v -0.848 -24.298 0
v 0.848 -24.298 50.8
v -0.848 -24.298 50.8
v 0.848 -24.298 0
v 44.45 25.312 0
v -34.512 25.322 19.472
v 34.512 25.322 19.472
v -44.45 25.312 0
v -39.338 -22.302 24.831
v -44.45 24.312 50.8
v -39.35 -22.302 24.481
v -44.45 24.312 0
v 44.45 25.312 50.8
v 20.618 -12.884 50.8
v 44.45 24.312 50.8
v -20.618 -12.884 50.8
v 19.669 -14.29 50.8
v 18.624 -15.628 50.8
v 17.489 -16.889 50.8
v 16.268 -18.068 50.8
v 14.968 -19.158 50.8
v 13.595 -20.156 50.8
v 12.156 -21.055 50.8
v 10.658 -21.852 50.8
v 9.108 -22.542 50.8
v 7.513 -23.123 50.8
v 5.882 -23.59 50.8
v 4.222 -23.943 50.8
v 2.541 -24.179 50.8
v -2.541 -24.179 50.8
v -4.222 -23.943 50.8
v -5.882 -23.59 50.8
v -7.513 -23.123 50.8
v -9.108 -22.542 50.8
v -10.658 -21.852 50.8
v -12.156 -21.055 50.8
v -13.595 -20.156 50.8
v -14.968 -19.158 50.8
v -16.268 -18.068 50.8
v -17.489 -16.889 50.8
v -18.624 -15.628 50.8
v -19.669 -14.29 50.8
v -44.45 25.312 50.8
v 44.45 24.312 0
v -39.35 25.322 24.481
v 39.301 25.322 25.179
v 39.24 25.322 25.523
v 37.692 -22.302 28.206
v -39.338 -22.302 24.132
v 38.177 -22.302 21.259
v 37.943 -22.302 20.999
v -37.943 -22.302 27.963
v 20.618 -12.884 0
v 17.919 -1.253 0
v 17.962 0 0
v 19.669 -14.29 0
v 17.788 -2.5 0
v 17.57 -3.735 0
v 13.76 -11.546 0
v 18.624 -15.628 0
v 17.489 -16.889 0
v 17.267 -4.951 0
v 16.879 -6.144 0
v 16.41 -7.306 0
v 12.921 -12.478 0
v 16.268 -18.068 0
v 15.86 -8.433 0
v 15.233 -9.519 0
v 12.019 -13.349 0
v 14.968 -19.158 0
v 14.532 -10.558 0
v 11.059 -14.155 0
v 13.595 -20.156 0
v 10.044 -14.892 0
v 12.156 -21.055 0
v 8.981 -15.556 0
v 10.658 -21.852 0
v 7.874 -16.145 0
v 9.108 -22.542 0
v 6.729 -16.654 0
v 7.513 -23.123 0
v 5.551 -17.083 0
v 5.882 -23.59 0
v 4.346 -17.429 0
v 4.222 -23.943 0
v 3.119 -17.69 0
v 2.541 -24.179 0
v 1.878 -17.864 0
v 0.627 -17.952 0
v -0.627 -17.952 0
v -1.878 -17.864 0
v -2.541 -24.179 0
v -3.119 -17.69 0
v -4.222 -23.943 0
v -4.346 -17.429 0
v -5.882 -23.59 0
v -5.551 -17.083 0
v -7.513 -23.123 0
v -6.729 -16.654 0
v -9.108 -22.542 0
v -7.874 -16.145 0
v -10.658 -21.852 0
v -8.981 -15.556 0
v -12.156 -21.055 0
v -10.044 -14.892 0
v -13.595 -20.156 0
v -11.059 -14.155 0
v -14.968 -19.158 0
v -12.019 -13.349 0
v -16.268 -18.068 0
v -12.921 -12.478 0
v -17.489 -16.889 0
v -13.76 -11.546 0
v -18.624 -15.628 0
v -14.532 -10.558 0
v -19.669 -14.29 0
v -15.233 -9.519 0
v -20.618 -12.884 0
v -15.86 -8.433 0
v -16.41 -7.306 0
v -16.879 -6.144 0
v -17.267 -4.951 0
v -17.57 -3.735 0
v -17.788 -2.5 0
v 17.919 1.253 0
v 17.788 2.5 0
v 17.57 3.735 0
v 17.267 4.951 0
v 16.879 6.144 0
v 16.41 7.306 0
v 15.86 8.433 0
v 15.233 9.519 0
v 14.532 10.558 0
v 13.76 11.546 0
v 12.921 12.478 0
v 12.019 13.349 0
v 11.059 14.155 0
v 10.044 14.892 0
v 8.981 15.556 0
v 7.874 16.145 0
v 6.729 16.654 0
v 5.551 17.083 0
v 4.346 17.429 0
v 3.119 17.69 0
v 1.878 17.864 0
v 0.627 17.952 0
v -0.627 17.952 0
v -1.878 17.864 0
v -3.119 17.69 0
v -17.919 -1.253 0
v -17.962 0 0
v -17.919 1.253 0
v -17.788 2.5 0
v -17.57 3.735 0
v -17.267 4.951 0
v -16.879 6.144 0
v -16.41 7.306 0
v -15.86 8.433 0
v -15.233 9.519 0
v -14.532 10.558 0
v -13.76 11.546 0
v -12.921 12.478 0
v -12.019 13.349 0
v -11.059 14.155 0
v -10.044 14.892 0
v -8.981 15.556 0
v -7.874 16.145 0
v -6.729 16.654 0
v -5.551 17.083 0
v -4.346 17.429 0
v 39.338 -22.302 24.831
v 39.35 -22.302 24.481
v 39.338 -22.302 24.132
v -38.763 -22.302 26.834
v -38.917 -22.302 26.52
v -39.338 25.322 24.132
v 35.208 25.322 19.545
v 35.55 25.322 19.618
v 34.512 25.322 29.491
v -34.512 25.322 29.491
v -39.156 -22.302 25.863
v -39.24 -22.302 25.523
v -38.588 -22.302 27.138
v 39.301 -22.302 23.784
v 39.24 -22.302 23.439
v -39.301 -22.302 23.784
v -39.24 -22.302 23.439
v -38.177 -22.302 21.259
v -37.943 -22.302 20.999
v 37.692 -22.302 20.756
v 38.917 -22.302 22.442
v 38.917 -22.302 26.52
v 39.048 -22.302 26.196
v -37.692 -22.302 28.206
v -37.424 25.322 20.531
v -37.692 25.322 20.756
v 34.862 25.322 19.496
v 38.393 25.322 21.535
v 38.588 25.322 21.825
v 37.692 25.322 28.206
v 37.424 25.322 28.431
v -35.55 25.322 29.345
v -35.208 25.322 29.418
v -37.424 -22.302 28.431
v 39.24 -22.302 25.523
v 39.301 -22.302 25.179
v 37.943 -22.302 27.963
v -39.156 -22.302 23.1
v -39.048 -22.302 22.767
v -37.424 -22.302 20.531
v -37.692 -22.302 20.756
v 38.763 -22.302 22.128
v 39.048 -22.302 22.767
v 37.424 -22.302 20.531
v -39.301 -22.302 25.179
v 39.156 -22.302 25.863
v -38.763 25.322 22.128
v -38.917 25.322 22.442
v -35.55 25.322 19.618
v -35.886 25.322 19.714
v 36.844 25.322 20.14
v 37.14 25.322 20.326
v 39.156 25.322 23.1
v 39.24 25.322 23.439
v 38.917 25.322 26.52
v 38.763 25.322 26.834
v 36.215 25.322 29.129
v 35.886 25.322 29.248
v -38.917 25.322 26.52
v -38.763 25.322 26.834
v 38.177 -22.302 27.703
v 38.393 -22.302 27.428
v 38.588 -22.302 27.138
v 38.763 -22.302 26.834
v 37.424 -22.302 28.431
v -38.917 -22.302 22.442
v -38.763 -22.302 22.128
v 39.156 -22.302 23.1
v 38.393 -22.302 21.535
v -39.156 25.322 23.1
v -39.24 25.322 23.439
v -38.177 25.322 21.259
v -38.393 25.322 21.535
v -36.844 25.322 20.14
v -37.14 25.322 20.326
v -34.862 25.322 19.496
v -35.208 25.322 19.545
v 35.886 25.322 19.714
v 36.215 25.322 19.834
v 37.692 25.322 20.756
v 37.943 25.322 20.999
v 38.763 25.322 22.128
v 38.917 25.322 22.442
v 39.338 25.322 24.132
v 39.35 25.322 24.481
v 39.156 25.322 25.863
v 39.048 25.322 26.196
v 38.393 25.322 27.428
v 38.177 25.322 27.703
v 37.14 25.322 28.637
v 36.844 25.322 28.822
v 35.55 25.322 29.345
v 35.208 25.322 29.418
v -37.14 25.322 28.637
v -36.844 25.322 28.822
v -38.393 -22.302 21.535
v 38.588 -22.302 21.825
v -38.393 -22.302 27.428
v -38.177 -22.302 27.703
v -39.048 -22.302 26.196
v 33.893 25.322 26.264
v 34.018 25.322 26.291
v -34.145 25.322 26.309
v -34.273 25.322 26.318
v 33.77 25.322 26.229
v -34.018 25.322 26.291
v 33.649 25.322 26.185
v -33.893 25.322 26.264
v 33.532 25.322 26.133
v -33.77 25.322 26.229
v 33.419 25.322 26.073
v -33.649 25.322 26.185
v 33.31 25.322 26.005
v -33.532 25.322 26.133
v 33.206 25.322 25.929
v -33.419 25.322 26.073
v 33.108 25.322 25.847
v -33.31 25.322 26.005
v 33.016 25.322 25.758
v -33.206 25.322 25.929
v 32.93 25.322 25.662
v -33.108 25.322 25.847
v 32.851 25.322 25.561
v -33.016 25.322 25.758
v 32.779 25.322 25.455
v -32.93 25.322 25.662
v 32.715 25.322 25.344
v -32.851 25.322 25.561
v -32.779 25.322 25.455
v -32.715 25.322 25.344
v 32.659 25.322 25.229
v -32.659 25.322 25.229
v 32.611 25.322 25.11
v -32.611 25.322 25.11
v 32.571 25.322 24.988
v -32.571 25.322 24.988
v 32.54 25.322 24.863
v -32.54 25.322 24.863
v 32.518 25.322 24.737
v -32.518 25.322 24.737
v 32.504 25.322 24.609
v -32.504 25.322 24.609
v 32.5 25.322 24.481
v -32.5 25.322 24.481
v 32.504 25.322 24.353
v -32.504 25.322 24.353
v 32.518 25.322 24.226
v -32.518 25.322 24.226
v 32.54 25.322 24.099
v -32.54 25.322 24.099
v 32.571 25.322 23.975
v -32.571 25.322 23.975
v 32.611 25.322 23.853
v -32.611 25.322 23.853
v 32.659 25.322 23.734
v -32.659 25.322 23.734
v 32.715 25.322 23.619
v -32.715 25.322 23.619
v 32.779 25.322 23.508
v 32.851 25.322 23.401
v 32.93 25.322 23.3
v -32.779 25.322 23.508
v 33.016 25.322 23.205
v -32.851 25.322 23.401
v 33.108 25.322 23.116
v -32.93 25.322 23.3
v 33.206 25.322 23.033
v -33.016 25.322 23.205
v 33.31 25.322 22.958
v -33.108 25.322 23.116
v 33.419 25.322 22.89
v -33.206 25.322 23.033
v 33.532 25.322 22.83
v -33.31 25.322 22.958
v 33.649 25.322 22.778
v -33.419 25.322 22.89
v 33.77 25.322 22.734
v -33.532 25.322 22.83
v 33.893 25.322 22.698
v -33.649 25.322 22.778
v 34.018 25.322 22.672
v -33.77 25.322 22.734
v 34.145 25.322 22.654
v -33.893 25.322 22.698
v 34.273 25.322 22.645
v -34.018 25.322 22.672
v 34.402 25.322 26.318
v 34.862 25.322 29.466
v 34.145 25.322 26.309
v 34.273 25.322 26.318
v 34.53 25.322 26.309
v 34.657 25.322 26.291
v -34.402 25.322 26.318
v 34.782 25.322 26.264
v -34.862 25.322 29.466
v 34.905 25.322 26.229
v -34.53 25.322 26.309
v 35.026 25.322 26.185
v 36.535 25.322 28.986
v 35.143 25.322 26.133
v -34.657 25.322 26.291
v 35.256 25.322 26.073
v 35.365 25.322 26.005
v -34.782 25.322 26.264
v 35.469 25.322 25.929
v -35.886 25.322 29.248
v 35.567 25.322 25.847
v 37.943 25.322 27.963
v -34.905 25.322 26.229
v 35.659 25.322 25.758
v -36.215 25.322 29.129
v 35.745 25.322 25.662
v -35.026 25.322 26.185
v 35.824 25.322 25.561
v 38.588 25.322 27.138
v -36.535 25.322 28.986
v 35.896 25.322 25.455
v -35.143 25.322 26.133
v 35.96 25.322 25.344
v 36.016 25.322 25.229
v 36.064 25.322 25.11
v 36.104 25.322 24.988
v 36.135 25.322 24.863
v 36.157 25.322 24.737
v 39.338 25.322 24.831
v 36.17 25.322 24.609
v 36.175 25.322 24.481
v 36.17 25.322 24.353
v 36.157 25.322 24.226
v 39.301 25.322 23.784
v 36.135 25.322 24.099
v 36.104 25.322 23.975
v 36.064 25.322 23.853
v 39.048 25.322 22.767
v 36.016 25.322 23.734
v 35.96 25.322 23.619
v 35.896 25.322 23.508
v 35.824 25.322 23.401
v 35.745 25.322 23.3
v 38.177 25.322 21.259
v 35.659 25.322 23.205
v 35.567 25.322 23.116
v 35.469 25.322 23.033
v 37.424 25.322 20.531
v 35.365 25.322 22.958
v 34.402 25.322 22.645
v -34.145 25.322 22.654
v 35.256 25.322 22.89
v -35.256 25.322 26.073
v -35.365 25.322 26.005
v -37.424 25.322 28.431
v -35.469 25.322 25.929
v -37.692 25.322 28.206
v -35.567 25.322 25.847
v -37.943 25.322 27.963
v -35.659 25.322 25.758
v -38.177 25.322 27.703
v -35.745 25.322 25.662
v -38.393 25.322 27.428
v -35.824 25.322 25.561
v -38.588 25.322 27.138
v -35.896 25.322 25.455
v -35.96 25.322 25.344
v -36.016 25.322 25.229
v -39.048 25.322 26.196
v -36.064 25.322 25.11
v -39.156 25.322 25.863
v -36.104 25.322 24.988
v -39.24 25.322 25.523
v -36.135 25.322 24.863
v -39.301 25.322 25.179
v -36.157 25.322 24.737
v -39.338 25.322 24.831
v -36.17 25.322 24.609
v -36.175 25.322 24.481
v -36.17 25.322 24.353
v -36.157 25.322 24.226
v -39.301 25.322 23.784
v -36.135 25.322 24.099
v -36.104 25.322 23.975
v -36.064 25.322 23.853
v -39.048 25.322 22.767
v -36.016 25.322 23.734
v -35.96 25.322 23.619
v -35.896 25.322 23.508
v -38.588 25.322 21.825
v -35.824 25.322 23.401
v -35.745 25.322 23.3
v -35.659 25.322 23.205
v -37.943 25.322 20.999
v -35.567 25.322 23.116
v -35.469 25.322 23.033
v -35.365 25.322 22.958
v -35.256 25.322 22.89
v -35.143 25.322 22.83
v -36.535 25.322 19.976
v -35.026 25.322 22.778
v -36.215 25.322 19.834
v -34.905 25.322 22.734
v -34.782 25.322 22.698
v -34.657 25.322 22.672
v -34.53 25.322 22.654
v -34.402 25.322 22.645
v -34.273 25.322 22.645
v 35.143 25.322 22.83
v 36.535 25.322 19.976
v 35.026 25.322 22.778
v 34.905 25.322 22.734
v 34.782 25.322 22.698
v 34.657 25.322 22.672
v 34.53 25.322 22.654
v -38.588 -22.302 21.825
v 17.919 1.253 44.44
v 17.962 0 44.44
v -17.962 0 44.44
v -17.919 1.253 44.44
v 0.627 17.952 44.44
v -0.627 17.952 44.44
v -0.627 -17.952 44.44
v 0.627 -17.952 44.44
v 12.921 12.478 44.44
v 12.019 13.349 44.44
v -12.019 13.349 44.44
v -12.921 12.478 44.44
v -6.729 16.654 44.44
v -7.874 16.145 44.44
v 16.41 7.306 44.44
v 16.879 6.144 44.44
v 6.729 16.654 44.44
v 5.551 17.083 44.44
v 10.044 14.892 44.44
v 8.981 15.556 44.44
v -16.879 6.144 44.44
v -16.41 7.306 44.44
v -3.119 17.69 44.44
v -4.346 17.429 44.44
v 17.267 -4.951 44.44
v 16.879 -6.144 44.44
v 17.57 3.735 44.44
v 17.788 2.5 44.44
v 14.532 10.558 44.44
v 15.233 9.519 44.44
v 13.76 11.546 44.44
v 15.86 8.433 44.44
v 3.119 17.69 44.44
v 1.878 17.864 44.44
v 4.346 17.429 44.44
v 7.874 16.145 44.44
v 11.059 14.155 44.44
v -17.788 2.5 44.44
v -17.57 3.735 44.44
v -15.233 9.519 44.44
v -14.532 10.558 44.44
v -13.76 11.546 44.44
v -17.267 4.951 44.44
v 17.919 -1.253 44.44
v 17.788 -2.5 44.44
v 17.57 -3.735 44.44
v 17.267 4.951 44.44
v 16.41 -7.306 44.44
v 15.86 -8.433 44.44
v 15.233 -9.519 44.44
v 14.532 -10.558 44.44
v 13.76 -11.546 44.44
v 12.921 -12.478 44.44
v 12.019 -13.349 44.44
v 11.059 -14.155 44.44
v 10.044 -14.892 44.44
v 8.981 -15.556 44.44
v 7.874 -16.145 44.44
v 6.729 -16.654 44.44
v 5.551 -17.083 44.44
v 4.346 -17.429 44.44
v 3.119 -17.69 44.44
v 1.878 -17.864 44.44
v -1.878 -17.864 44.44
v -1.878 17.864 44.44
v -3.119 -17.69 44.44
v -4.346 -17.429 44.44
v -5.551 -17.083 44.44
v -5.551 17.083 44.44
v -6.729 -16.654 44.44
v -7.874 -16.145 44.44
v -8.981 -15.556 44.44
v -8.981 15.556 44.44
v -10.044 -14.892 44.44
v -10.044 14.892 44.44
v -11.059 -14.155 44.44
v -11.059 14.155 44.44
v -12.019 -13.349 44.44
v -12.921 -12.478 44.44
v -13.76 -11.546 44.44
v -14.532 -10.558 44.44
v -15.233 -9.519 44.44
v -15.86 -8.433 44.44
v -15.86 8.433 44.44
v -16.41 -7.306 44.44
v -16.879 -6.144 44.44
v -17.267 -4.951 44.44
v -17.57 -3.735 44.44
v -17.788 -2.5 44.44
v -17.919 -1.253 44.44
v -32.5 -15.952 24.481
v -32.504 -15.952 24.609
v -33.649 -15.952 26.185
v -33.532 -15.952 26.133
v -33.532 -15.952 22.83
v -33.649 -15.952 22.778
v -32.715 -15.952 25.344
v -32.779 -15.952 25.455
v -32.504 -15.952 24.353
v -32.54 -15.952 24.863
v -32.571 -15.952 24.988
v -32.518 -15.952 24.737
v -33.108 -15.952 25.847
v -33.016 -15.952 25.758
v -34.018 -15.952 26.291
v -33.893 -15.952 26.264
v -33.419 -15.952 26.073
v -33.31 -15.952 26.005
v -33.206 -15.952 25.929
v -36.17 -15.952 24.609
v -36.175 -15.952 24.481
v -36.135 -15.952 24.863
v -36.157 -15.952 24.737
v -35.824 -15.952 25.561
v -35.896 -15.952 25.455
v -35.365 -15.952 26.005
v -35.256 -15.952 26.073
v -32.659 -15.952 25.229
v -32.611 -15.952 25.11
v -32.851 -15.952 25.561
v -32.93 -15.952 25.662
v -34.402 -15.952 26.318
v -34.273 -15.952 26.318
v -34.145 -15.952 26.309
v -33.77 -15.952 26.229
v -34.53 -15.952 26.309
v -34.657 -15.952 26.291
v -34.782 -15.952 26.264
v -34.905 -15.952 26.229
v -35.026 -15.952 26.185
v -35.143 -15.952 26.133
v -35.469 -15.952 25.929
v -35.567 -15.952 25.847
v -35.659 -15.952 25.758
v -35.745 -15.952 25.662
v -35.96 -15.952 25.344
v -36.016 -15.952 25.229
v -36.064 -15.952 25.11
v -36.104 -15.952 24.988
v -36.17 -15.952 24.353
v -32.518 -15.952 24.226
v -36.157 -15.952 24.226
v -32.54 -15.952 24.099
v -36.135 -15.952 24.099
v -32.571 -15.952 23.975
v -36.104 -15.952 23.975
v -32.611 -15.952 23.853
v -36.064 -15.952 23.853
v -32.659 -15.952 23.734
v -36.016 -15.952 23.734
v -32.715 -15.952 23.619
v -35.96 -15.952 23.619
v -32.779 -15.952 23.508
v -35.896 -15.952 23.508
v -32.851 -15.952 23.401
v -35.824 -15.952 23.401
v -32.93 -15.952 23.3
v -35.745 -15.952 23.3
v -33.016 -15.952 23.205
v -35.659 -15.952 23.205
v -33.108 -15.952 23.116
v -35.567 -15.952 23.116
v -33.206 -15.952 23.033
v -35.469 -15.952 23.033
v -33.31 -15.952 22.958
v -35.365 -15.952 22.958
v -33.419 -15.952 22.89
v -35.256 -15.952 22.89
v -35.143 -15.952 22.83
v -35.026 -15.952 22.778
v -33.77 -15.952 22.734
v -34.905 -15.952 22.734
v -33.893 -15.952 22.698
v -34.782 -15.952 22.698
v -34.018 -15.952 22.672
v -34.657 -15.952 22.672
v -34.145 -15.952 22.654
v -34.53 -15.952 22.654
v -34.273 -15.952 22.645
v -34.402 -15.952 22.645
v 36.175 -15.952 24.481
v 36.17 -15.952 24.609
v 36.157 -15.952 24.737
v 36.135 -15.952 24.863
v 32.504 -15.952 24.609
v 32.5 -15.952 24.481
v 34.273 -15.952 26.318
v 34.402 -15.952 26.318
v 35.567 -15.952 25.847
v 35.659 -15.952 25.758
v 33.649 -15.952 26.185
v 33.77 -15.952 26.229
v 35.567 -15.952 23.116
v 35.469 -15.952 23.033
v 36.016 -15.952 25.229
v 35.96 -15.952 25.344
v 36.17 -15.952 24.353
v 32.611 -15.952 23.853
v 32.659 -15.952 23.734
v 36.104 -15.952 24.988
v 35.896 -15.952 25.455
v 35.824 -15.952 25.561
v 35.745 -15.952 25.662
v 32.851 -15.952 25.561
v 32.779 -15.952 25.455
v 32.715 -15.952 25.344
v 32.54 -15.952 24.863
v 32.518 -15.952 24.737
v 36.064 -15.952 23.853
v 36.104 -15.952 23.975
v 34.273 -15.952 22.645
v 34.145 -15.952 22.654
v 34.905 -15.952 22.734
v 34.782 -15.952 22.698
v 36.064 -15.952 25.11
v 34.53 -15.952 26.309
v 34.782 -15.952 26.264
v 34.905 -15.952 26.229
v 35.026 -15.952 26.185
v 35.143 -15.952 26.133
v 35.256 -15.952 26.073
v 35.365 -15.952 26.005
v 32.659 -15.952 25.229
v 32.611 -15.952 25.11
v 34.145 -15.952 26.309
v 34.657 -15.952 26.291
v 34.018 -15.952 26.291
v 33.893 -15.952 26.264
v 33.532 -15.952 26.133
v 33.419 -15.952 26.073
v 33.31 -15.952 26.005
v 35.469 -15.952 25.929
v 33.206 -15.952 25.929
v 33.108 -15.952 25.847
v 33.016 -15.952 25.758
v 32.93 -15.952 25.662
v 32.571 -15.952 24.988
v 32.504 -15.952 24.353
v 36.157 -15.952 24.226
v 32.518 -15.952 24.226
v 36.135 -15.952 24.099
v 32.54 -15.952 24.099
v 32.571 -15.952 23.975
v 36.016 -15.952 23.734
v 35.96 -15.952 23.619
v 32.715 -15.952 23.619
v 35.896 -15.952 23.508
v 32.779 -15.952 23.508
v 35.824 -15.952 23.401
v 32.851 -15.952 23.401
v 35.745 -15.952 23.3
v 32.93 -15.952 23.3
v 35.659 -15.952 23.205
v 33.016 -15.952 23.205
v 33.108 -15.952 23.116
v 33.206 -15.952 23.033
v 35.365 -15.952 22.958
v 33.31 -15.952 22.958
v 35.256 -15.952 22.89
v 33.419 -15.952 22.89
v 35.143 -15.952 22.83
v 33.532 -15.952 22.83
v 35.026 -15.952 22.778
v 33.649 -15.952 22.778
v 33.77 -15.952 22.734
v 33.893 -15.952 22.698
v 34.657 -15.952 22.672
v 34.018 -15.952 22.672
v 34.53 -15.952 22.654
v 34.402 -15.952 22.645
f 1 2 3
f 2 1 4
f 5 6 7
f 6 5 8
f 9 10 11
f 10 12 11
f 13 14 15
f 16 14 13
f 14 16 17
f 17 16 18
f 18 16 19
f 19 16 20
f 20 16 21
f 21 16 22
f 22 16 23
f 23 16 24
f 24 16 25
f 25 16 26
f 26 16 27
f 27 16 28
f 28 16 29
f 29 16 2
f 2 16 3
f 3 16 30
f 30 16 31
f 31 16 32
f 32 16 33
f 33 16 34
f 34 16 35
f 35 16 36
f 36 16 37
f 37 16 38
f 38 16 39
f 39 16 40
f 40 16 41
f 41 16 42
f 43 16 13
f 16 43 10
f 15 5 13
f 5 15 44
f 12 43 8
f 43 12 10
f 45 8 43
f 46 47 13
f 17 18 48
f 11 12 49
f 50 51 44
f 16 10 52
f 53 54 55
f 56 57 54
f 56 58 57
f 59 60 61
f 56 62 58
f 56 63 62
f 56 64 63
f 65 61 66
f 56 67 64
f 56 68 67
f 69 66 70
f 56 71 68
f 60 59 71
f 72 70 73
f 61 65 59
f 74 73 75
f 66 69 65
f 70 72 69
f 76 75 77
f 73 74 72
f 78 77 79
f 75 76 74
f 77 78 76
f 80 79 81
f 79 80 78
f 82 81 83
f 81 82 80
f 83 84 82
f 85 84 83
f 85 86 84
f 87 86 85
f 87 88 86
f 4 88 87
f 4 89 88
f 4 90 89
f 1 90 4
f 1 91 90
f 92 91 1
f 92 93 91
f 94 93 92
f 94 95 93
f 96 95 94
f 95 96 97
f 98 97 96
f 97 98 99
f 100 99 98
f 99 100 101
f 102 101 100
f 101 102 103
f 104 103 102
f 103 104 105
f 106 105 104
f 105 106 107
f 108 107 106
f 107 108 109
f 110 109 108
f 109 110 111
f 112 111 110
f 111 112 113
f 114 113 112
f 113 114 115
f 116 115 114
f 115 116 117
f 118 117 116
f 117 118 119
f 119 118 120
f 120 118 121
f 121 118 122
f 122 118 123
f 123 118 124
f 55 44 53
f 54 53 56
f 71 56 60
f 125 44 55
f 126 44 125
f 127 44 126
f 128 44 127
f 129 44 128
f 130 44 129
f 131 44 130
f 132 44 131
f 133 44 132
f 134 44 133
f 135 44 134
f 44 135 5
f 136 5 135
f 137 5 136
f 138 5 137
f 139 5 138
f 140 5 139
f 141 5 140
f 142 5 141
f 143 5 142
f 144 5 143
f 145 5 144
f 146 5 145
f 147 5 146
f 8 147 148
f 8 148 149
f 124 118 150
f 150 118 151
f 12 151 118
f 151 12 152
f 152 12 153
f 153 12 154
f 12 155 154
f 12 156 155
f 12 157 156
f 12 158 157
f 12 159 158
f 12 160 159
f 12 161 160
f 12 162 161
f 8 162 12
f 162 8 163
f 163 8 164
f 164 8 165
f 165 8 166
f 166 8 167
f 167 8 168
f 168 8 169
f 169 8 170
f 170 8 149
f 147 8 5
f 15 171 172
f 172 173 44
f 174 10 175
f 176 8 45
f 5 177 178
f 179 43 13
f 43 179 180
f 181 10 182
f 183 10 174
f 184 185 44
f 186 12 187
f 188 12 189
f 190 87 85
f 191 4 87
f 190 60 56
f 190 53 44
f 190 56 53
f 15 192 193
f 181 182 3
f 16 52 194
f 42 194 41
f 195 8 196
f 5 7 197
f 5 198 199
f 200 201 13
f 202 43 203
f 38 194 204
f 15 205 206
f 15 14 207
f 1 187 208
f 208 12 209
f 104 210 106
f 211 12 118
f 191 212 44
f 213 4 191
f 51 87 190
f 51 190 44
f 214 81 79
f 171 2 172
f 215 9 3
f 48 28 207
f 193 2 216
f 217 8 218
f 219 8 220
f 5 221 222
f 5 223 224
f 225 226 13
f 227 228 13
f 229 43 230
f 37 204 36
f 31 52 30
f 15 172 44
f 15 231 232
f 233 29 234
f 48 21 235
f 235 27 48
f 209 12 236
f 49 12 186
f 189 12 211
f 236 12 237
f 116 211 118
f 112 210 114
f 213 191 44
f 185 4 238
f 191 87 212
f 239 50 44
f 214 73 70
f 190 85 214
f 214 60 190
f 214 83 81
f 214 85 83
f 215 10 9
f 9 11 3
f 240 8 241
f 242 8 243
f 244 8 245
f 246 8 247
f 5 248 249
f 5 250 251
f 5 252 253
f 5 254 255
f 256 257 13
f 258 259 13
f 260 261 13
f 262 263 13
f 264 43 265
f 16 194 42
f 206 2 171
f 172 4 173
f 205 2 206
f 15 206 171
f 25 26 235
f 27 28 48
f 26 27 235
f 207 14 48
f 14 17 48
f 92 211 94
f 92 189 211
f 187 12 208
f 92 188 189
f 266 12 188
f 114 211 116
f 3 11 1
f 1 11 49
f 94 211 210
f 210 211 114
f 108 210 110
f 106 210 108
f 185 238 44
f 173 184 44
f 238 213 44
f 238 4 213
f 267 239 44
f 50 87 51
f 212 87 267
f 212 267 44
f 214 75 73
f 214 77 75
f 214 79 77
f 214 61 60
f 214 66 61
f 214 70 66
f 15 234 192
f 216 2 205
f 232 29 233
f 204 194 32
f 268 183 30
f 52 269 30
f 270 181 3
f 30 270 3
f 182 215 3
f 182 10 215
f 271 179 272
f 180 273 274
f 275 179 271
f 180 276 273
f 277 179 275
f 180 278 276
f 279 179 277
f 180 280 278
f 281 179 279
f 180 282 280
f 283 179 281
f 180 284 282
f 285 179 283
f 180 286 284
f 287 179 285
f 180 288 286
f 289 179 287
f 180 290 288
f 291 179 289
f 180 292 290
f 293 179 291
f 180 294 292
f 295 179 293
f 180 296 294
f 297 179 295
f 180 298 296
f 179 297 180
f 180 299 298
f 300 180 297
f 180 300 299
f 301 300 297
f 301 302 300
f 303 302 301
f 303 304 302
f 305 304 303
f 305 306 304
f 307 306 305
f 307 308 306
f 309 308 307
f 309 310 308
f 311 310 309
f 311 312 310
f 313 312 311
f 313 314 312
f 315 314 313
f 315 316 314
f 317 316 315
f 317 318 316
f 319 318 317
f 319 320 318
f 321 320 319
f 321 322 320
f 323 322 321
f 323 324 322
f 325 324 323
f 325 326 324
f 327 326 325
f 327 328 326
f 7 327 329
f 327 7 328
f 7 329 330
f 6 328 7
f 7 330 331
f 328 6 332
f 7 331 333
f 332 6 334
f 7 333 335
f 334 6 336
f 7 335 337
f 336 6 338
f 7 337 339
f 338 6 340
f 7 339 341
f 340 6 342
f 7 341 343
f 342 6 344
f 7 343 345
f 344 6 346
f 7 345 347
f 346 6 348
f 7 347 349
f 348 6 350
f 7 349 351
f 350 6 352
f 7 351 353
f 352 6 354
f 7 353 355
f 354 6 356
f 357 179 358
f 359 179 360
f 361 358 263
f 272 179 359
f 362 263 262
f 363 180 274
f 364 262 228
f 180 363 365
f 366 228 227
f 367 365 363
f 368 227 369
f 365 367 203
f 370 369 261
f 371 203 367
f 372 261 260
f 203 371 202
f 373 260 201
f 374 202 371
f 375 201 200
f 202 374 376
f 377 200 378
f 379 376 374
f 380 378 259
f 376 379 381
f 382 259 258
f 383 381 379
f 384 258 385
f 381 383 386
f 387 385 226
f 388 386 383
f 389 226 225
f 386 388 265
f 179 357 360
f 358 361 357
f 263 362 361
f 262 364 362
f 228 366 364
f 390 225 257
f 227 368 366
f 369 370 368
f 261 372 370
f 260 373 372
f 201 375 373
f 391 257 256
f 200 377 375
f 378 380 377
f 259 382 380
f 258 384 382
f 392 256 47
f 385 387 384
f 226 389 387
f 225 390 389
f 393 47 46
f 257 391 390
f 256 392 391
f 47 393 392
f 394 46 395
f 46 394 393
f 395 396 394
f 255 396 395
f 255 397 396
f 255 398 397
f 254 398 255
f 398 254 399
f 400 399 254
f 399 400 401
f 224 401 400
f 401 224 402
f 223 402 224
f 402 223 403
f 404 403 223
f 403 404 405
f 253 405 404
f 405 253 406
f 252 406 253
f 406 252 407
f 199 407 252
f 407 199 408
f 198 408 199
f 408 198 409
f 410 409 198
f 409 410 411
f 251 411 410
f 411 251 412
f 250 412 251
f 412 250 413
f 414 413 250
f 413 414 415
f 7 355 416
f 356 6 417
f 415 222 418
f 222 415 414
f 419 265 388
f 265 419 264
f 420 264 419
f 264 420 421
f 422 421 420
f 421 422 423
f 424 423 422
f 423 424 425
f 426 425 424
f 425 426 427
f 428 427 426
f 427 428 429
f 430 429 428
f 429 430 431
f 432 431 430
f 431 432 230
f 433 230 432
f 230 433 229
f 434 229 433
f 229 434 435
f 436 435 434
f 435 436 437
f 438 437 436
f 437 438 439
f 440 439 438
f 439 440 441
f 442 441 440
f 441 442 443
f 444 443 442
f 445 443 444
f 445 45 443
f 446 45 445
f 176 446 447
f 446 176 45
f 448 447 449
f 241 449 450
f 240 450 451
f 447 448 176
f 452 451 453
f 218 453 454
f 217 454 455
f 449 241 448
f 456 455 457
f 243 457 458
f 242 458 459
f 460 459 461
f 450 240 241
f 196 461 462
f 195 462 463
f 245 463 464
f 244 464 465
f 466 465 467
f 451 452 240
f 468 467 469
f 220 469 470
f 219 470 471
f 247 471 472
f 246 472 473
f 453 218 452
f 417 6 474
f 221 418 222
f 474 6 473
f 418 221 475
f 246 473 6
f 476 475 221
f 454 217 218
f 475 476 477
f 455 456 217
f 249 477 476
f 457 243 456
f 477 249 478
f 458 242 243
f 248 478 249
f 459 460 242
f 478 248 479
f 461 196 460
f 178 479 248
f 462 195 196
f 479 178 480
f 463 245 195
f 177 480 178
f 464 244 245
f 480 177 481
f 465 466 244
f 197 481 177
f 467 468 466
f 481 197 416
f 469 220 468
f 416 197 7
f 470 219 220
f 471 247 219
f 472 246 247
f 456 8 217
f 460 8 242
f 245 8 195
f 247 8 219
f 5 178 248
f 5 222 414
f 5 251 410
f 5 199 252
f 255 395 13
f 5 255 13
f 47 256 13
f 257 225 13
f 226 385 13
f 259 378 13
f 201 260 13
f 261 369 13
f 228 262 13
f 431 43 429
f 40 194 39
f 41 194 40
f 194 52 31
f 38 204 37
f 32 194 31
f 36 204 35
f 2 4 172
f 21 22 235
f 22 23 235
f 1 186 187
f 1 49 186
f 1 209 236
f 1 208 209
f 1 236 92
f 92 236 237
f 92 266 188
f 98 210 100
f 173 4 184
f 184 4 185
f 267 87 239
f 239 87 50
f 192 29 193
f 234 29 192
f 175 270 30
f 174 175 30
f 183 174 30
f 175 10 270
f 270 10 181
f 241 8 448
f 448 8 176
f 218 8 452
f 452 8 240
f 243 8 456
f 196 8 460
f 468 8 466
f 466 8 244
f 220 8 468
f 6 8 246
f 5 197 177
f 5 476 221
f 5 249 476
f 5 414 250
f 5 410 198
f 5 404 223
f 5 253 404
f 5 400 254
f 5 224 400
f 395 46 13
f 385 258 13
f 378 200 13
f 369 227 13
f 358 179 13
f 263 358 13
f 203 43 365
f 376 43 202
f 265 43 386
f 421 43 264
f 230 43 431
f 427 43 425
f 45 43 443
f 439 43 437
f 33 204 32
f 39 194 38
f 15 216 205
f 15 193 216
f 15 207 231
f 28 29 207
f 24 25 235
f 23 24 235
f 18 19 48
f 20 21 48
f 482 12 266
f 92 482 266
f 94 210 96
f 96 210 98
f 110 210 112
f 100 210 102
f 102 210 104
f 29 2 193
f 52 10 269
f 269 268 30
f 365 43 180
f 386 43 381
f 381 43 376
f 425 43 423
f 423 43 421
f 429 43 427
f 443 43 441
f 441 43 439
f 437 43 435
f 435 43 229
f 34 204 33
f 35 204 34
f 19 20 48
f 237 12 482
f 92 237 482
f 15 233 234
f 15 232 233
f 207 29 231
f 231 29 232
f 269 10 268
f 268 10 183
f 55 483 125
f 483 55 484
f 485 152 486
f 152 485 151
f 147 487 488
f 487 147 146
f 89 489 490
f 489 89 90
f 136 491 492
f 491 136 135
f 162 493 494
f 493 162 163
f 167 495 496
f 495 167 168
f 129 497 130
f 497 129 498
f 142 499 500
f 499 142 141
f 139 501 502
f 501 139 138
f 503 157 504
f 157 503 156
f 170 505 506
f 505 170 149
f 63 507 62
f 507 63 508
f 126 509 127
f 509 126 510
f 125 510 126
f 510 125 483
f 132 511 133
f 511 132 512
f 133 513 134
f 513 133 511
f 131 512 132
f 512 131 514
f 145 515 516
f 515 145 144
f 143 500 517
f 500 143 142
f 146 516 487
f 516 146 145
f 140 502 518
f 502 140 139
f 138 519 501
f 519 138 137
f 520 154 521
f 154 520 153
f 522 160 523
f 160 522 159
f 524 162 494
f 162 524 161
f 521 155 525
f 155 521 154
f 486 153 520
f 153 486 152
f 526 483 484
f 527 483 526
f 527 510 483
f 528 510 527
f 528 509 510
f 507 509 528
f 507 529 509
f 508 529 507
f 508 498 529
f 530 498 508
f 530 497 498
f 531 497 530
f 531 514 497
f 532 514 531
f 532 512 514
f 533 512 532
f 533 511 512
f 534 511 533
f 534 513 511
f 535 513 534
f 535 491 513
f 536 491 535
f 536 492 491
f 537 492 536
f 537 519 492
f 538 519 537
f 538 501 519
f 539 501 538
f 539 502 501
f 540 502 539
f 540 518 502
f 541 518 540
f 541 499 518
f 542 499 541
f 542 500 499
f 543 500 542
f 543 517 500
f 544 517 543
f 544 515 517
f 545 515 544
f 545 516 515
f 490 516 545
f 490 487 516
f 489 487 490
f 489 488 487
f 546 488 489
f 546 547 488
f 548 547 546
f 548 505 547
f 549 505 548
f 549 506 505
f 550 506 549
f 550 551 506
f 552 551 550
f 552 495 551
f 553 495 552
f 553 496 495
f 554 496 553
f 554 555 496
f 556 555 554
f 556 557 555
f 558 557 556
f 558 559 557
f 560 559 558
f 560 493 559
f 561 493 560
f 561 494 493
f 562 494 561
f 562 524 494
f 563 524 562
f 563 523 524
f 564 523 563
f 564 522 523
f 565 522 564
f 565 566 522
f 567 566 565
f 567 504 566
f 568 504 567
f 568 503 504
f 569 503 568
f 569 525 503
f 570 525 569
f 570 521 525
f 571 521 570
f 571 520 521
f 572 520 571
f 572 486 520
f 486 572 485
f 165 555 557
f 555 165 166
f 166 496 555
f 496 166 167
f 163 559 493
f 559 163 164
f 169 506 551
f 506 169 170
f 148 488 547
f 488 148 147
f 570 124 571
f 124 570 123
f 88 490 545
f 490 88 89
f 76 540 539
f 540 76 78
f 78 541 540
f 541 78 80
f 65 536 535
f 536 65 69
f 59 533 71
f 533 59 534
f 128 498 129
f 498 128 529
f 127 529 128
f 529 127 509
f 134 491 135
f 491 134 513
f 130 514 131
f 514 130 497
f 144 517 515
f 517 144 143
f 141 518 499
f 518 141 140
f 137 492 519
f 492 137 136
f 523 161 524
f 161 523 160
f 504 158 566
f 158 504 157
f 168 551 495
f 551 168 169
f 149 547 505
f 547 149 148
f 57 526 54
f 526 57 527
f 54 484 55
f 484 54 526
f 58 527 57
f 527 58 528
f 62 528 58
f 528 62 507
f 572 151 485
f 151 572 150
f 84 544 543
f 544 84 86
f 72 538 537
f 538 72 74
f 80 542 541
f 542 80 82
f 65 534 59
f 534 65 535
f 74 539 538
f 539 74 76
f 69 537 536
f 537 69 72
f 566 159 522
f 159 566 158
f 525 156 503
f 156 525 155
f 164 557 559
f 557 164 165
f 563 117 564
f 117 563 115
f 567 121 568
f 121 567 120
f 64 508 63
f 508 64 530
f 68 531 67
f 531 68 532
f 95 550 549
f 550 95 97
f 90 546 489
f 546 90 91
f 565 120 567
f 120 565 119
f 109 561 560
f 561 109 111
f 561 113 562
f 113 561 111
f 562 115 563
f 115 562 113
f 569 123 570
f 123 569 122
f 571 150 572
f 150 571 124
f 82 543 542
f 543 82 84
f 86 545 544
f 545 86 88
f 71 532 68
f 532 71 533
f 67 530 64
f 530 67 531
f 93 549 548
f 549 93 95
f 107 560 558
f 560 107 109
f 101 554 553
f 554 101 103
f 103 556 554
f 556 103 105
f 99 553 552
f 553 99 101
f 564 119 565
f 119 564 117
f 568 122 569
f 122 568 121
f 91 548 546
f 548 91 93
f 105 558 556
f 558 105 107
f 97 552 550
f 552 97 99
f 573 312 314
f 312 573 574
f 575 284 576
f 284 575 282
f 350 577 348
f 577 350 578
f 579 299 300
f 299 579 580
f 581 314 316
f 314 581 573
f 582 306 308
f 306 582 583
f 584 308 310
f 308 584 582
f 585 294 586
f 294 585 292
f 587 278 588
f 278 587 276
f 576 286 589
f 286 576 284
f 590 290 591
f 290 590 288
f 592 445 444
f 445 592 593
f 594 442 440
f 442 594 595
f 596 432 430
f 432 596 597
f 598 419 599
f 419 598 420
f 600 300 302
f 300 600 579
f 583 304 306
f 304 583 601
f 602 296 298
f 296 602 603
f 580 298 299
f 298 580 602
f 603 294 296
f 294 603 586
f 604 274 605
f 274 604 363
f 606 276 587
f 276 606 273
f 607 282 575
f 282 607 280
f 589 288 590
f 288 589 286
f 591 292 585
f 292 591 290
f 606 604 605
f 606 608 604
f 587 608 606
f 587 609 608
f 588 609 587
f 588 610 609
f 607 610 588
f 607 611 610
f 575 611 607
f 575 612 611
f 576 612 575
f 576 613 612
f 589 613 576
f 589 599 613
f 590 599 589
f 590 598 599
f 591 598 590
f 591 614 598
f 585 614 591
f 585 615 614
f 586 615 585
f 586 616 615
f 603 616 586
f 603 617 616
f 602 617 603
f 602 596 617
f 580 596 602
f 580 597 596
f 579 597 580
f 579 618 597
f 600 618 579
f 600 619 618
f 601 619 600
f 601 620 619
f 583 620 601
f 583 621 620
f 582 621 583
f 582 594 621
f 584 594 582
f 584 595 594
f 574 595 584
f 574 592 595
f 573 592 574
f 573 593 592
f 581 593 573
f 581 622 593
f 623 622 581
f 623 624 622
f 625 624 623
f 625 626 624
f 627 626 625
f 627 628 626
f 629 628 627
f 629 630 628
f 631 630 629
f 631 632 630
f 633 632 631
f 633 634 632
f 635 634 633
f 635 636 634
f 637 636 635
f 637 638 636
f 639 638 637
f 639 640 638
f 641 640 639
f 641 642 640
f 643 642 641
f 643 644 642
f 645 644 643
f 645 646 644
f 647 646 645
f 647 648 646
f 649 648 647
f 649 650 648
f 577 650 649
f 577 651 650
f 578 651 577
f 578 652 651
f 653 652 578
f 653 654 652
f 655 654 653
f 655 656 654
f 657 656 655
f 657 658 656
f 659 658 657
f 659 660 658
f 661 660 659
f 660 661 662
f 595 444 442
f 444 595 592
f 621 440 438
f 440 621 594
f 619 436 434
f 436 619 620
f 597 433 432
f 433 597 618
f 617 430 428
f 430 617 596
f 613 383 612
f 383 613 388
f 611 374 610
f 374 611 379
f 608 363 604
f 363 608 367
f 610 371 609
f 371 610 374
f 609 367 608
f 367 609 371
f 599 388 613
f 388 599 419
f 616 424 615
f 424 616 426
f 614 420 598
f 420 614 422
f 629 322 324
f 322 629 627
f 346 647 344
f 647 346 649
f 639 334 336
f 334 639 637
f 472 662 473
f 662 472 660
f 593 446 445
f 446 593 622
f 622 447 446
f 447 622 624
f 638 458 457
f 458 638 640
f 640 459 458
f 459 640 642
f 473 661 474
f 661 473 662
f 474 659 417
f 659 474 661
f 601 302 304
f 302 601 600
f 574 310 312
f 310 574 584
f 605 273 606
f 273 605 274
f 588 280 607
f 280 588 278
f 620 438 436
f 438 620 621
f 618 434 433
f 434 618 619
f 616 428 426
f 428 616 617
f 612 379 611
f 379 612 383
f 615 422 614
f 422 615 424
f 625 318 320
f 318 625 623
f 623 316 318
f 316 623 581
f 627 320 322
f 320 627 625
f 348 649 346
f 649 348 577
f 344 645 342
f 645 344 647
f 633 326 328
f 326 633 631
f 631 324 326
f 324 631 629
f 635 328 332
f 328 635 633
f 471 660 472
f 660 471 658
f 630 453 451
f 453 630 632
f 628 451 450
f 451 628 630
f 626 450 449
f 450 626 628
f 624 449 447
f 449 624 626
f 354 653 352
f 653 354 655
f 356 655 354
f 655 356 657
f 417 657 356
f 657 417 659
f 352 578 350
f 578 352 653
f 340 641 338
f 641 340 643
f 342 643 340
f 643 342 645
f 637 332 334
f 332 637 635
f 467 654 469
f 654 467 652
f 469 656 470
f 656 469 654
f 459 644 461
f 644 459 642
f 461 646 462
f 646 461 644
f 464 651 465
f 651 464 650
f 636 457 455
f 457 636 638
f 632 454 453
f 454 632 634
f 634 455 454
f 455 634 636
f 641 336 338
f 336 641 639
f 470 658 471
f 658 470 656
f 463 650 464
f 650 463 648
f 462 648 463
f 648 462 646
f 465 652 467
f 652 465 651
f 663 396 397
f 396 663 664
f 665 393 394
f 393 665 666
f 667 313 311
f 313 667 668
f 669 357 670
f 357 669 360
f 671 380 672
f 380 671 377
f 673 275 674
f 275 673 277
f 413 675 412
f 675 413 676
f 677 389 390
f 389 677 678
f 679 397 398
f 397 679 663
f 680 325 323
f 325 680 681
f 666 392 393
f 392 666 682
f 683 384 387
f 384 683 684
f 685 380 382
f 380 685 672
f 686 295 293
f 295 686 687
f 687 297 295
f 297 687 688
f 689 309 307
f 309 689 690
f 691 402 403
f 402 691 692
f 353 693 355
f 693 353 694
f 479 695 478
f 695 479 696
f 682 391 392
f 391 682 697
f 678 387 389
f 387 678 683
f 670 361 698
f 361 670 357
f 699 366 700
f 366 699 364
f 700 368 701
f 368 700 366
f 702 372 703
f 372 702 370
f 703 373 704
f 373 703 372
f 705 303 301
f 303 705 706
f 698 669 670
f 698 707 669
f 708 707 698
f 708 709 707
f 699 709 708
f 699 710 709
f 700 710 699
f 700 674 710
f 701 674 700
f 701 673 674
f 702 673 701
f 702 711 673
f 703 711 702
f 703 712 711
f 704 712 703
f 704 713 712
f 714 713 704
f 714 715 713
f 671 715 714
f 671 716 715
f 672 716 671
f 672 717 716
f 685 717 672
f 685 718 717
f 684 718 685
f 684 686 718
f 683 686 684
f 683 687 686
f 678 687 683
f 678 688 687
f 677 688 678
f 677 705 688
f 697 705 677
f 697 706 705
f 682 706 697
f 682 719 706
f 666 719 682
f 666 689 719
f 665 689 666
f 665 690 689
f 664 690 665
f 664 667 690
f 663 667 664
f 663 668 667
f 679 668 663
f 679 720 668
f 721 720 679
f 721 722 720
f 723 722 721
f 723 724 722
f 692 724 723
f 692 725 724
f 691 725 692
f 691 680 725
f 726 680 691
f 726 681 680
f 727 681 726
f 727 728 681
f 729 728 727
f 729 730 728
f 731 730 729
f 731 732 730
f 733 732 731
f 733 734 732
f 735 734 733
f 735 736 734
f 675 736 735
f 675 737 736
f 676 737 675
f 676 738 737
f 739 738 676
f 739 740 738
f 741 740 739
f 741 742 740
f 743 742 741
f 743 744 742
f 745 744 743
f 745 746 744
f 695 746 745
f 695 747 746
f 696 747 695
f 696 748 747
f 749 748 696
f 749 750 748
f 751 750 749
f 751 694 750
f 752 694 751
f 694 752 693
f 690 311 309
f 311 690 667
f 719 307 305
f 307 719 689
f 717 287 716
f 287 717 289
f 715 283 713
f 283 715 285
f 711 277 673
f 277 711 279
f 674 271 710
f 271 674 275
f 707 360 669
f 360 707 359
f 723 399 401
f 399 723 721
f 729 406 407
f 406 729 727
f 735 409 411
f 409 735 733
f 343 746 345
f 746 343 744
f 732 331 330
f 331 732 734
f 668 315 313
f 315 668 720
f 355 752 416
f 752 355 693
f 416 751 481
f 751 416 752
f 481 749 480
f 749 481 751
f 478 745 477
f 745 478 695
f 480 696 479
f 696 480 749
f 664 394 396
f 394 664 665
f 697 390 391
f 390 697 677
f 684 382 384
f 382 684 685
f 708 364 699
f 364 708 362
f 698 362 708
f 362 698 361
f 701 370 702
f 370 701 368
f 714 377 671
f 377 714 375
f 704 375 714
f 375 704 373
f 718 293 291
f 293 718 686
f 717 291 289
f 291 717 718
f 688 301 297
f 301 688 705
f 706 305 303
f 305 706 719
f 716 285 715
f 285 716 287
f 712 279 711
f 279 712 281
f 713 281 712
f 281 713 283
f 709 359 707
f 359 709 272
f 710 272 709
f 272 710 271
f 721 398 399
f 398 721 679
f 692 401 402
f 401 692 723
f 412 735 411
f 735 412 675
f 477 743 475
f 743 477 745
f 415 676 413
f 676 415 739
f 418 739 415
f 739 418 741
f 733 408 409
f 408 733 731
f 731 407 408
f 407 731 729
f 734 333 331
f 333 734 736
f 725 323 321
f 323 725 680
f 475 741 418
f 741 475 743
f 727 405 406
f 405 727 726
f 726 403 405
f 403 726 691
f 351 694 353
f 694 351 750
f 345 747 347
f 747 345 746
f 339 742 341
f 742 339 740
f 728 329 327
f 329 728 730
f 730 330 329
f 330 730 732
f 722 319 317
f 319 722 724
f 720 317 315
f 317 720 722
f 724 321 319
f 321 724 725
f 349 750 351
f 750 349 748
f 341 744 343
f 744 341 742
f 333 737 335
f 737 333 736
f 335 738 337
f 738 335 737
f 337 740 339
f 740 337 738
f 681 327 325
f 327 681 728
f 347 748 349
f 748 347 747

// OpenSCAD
$fn = 90;

in2mm = 25.4;

tripodDai = (1+3/8)*in2mm+1; 
mountHeight = 1.75*in2mm;
wallThickness = .25*in2mm;

mountHoleDistance = (2+5/8)*in2mm+2;
mountX = (3.5)*in2mm;
mountHoleDia = 1/8*in2mm+.5;
mountHoledepth = (1.625)*in2mm;

module center_tube()
{
    cylinder(d=tripodDai, h=mountHeight);
}



module mount()
{
    difference()
    {
        hull(){
            cylinder(d=tripodDai+2*wallThickness, h=mountHeight+wallThickness);
            translate([-mountX/2, (tripodDai+2*wallThickness)/2, 0])cube([mountX,1,mountHeight+wallThickness]);
            
        translate([-(mountHoleDistance)/2,(tripodDai+2*wallThickness)/2+1.01,(mountHeight+wallThickness-mountHoleDia/2)/2])rotate([90,0,0])cylinder(d=mountHoleDia+wallThickness, h=mountHoledepth+wallThickness);
        translate([(mountHoleDistance)/2,(tripodDai+2*wallThickness)/2+1.01,(mountHeight+wallThickness-mountHoleDia/2)/2])rotate([90,0,0])cylinder(d=mountHoleDia+wallThickness, h=mountHoledepth+wallThickness);
        }
        translate([0,0,-0.01])center_tube();
        //hole
        translate([-(mountHoleDistance)/2,(tripodDai+2*wallThickness)/2+1.01,(mountHeight+wallThickness-mountHoleDia/2)/2])rotate([90,0,0])cylinder(d=mountHoleDia, h=mountHoledepth);
        translate([(mountHoleDistance)/2,(tripodDai+2*wallThickness)/2+1.01,(mountHeight+wallThickness-mountHoleDia/2)/2])rotate([90,0,0])cylinder(d=mountHoleDia, h=mountHoledepth);
        
    }
}

mount();
